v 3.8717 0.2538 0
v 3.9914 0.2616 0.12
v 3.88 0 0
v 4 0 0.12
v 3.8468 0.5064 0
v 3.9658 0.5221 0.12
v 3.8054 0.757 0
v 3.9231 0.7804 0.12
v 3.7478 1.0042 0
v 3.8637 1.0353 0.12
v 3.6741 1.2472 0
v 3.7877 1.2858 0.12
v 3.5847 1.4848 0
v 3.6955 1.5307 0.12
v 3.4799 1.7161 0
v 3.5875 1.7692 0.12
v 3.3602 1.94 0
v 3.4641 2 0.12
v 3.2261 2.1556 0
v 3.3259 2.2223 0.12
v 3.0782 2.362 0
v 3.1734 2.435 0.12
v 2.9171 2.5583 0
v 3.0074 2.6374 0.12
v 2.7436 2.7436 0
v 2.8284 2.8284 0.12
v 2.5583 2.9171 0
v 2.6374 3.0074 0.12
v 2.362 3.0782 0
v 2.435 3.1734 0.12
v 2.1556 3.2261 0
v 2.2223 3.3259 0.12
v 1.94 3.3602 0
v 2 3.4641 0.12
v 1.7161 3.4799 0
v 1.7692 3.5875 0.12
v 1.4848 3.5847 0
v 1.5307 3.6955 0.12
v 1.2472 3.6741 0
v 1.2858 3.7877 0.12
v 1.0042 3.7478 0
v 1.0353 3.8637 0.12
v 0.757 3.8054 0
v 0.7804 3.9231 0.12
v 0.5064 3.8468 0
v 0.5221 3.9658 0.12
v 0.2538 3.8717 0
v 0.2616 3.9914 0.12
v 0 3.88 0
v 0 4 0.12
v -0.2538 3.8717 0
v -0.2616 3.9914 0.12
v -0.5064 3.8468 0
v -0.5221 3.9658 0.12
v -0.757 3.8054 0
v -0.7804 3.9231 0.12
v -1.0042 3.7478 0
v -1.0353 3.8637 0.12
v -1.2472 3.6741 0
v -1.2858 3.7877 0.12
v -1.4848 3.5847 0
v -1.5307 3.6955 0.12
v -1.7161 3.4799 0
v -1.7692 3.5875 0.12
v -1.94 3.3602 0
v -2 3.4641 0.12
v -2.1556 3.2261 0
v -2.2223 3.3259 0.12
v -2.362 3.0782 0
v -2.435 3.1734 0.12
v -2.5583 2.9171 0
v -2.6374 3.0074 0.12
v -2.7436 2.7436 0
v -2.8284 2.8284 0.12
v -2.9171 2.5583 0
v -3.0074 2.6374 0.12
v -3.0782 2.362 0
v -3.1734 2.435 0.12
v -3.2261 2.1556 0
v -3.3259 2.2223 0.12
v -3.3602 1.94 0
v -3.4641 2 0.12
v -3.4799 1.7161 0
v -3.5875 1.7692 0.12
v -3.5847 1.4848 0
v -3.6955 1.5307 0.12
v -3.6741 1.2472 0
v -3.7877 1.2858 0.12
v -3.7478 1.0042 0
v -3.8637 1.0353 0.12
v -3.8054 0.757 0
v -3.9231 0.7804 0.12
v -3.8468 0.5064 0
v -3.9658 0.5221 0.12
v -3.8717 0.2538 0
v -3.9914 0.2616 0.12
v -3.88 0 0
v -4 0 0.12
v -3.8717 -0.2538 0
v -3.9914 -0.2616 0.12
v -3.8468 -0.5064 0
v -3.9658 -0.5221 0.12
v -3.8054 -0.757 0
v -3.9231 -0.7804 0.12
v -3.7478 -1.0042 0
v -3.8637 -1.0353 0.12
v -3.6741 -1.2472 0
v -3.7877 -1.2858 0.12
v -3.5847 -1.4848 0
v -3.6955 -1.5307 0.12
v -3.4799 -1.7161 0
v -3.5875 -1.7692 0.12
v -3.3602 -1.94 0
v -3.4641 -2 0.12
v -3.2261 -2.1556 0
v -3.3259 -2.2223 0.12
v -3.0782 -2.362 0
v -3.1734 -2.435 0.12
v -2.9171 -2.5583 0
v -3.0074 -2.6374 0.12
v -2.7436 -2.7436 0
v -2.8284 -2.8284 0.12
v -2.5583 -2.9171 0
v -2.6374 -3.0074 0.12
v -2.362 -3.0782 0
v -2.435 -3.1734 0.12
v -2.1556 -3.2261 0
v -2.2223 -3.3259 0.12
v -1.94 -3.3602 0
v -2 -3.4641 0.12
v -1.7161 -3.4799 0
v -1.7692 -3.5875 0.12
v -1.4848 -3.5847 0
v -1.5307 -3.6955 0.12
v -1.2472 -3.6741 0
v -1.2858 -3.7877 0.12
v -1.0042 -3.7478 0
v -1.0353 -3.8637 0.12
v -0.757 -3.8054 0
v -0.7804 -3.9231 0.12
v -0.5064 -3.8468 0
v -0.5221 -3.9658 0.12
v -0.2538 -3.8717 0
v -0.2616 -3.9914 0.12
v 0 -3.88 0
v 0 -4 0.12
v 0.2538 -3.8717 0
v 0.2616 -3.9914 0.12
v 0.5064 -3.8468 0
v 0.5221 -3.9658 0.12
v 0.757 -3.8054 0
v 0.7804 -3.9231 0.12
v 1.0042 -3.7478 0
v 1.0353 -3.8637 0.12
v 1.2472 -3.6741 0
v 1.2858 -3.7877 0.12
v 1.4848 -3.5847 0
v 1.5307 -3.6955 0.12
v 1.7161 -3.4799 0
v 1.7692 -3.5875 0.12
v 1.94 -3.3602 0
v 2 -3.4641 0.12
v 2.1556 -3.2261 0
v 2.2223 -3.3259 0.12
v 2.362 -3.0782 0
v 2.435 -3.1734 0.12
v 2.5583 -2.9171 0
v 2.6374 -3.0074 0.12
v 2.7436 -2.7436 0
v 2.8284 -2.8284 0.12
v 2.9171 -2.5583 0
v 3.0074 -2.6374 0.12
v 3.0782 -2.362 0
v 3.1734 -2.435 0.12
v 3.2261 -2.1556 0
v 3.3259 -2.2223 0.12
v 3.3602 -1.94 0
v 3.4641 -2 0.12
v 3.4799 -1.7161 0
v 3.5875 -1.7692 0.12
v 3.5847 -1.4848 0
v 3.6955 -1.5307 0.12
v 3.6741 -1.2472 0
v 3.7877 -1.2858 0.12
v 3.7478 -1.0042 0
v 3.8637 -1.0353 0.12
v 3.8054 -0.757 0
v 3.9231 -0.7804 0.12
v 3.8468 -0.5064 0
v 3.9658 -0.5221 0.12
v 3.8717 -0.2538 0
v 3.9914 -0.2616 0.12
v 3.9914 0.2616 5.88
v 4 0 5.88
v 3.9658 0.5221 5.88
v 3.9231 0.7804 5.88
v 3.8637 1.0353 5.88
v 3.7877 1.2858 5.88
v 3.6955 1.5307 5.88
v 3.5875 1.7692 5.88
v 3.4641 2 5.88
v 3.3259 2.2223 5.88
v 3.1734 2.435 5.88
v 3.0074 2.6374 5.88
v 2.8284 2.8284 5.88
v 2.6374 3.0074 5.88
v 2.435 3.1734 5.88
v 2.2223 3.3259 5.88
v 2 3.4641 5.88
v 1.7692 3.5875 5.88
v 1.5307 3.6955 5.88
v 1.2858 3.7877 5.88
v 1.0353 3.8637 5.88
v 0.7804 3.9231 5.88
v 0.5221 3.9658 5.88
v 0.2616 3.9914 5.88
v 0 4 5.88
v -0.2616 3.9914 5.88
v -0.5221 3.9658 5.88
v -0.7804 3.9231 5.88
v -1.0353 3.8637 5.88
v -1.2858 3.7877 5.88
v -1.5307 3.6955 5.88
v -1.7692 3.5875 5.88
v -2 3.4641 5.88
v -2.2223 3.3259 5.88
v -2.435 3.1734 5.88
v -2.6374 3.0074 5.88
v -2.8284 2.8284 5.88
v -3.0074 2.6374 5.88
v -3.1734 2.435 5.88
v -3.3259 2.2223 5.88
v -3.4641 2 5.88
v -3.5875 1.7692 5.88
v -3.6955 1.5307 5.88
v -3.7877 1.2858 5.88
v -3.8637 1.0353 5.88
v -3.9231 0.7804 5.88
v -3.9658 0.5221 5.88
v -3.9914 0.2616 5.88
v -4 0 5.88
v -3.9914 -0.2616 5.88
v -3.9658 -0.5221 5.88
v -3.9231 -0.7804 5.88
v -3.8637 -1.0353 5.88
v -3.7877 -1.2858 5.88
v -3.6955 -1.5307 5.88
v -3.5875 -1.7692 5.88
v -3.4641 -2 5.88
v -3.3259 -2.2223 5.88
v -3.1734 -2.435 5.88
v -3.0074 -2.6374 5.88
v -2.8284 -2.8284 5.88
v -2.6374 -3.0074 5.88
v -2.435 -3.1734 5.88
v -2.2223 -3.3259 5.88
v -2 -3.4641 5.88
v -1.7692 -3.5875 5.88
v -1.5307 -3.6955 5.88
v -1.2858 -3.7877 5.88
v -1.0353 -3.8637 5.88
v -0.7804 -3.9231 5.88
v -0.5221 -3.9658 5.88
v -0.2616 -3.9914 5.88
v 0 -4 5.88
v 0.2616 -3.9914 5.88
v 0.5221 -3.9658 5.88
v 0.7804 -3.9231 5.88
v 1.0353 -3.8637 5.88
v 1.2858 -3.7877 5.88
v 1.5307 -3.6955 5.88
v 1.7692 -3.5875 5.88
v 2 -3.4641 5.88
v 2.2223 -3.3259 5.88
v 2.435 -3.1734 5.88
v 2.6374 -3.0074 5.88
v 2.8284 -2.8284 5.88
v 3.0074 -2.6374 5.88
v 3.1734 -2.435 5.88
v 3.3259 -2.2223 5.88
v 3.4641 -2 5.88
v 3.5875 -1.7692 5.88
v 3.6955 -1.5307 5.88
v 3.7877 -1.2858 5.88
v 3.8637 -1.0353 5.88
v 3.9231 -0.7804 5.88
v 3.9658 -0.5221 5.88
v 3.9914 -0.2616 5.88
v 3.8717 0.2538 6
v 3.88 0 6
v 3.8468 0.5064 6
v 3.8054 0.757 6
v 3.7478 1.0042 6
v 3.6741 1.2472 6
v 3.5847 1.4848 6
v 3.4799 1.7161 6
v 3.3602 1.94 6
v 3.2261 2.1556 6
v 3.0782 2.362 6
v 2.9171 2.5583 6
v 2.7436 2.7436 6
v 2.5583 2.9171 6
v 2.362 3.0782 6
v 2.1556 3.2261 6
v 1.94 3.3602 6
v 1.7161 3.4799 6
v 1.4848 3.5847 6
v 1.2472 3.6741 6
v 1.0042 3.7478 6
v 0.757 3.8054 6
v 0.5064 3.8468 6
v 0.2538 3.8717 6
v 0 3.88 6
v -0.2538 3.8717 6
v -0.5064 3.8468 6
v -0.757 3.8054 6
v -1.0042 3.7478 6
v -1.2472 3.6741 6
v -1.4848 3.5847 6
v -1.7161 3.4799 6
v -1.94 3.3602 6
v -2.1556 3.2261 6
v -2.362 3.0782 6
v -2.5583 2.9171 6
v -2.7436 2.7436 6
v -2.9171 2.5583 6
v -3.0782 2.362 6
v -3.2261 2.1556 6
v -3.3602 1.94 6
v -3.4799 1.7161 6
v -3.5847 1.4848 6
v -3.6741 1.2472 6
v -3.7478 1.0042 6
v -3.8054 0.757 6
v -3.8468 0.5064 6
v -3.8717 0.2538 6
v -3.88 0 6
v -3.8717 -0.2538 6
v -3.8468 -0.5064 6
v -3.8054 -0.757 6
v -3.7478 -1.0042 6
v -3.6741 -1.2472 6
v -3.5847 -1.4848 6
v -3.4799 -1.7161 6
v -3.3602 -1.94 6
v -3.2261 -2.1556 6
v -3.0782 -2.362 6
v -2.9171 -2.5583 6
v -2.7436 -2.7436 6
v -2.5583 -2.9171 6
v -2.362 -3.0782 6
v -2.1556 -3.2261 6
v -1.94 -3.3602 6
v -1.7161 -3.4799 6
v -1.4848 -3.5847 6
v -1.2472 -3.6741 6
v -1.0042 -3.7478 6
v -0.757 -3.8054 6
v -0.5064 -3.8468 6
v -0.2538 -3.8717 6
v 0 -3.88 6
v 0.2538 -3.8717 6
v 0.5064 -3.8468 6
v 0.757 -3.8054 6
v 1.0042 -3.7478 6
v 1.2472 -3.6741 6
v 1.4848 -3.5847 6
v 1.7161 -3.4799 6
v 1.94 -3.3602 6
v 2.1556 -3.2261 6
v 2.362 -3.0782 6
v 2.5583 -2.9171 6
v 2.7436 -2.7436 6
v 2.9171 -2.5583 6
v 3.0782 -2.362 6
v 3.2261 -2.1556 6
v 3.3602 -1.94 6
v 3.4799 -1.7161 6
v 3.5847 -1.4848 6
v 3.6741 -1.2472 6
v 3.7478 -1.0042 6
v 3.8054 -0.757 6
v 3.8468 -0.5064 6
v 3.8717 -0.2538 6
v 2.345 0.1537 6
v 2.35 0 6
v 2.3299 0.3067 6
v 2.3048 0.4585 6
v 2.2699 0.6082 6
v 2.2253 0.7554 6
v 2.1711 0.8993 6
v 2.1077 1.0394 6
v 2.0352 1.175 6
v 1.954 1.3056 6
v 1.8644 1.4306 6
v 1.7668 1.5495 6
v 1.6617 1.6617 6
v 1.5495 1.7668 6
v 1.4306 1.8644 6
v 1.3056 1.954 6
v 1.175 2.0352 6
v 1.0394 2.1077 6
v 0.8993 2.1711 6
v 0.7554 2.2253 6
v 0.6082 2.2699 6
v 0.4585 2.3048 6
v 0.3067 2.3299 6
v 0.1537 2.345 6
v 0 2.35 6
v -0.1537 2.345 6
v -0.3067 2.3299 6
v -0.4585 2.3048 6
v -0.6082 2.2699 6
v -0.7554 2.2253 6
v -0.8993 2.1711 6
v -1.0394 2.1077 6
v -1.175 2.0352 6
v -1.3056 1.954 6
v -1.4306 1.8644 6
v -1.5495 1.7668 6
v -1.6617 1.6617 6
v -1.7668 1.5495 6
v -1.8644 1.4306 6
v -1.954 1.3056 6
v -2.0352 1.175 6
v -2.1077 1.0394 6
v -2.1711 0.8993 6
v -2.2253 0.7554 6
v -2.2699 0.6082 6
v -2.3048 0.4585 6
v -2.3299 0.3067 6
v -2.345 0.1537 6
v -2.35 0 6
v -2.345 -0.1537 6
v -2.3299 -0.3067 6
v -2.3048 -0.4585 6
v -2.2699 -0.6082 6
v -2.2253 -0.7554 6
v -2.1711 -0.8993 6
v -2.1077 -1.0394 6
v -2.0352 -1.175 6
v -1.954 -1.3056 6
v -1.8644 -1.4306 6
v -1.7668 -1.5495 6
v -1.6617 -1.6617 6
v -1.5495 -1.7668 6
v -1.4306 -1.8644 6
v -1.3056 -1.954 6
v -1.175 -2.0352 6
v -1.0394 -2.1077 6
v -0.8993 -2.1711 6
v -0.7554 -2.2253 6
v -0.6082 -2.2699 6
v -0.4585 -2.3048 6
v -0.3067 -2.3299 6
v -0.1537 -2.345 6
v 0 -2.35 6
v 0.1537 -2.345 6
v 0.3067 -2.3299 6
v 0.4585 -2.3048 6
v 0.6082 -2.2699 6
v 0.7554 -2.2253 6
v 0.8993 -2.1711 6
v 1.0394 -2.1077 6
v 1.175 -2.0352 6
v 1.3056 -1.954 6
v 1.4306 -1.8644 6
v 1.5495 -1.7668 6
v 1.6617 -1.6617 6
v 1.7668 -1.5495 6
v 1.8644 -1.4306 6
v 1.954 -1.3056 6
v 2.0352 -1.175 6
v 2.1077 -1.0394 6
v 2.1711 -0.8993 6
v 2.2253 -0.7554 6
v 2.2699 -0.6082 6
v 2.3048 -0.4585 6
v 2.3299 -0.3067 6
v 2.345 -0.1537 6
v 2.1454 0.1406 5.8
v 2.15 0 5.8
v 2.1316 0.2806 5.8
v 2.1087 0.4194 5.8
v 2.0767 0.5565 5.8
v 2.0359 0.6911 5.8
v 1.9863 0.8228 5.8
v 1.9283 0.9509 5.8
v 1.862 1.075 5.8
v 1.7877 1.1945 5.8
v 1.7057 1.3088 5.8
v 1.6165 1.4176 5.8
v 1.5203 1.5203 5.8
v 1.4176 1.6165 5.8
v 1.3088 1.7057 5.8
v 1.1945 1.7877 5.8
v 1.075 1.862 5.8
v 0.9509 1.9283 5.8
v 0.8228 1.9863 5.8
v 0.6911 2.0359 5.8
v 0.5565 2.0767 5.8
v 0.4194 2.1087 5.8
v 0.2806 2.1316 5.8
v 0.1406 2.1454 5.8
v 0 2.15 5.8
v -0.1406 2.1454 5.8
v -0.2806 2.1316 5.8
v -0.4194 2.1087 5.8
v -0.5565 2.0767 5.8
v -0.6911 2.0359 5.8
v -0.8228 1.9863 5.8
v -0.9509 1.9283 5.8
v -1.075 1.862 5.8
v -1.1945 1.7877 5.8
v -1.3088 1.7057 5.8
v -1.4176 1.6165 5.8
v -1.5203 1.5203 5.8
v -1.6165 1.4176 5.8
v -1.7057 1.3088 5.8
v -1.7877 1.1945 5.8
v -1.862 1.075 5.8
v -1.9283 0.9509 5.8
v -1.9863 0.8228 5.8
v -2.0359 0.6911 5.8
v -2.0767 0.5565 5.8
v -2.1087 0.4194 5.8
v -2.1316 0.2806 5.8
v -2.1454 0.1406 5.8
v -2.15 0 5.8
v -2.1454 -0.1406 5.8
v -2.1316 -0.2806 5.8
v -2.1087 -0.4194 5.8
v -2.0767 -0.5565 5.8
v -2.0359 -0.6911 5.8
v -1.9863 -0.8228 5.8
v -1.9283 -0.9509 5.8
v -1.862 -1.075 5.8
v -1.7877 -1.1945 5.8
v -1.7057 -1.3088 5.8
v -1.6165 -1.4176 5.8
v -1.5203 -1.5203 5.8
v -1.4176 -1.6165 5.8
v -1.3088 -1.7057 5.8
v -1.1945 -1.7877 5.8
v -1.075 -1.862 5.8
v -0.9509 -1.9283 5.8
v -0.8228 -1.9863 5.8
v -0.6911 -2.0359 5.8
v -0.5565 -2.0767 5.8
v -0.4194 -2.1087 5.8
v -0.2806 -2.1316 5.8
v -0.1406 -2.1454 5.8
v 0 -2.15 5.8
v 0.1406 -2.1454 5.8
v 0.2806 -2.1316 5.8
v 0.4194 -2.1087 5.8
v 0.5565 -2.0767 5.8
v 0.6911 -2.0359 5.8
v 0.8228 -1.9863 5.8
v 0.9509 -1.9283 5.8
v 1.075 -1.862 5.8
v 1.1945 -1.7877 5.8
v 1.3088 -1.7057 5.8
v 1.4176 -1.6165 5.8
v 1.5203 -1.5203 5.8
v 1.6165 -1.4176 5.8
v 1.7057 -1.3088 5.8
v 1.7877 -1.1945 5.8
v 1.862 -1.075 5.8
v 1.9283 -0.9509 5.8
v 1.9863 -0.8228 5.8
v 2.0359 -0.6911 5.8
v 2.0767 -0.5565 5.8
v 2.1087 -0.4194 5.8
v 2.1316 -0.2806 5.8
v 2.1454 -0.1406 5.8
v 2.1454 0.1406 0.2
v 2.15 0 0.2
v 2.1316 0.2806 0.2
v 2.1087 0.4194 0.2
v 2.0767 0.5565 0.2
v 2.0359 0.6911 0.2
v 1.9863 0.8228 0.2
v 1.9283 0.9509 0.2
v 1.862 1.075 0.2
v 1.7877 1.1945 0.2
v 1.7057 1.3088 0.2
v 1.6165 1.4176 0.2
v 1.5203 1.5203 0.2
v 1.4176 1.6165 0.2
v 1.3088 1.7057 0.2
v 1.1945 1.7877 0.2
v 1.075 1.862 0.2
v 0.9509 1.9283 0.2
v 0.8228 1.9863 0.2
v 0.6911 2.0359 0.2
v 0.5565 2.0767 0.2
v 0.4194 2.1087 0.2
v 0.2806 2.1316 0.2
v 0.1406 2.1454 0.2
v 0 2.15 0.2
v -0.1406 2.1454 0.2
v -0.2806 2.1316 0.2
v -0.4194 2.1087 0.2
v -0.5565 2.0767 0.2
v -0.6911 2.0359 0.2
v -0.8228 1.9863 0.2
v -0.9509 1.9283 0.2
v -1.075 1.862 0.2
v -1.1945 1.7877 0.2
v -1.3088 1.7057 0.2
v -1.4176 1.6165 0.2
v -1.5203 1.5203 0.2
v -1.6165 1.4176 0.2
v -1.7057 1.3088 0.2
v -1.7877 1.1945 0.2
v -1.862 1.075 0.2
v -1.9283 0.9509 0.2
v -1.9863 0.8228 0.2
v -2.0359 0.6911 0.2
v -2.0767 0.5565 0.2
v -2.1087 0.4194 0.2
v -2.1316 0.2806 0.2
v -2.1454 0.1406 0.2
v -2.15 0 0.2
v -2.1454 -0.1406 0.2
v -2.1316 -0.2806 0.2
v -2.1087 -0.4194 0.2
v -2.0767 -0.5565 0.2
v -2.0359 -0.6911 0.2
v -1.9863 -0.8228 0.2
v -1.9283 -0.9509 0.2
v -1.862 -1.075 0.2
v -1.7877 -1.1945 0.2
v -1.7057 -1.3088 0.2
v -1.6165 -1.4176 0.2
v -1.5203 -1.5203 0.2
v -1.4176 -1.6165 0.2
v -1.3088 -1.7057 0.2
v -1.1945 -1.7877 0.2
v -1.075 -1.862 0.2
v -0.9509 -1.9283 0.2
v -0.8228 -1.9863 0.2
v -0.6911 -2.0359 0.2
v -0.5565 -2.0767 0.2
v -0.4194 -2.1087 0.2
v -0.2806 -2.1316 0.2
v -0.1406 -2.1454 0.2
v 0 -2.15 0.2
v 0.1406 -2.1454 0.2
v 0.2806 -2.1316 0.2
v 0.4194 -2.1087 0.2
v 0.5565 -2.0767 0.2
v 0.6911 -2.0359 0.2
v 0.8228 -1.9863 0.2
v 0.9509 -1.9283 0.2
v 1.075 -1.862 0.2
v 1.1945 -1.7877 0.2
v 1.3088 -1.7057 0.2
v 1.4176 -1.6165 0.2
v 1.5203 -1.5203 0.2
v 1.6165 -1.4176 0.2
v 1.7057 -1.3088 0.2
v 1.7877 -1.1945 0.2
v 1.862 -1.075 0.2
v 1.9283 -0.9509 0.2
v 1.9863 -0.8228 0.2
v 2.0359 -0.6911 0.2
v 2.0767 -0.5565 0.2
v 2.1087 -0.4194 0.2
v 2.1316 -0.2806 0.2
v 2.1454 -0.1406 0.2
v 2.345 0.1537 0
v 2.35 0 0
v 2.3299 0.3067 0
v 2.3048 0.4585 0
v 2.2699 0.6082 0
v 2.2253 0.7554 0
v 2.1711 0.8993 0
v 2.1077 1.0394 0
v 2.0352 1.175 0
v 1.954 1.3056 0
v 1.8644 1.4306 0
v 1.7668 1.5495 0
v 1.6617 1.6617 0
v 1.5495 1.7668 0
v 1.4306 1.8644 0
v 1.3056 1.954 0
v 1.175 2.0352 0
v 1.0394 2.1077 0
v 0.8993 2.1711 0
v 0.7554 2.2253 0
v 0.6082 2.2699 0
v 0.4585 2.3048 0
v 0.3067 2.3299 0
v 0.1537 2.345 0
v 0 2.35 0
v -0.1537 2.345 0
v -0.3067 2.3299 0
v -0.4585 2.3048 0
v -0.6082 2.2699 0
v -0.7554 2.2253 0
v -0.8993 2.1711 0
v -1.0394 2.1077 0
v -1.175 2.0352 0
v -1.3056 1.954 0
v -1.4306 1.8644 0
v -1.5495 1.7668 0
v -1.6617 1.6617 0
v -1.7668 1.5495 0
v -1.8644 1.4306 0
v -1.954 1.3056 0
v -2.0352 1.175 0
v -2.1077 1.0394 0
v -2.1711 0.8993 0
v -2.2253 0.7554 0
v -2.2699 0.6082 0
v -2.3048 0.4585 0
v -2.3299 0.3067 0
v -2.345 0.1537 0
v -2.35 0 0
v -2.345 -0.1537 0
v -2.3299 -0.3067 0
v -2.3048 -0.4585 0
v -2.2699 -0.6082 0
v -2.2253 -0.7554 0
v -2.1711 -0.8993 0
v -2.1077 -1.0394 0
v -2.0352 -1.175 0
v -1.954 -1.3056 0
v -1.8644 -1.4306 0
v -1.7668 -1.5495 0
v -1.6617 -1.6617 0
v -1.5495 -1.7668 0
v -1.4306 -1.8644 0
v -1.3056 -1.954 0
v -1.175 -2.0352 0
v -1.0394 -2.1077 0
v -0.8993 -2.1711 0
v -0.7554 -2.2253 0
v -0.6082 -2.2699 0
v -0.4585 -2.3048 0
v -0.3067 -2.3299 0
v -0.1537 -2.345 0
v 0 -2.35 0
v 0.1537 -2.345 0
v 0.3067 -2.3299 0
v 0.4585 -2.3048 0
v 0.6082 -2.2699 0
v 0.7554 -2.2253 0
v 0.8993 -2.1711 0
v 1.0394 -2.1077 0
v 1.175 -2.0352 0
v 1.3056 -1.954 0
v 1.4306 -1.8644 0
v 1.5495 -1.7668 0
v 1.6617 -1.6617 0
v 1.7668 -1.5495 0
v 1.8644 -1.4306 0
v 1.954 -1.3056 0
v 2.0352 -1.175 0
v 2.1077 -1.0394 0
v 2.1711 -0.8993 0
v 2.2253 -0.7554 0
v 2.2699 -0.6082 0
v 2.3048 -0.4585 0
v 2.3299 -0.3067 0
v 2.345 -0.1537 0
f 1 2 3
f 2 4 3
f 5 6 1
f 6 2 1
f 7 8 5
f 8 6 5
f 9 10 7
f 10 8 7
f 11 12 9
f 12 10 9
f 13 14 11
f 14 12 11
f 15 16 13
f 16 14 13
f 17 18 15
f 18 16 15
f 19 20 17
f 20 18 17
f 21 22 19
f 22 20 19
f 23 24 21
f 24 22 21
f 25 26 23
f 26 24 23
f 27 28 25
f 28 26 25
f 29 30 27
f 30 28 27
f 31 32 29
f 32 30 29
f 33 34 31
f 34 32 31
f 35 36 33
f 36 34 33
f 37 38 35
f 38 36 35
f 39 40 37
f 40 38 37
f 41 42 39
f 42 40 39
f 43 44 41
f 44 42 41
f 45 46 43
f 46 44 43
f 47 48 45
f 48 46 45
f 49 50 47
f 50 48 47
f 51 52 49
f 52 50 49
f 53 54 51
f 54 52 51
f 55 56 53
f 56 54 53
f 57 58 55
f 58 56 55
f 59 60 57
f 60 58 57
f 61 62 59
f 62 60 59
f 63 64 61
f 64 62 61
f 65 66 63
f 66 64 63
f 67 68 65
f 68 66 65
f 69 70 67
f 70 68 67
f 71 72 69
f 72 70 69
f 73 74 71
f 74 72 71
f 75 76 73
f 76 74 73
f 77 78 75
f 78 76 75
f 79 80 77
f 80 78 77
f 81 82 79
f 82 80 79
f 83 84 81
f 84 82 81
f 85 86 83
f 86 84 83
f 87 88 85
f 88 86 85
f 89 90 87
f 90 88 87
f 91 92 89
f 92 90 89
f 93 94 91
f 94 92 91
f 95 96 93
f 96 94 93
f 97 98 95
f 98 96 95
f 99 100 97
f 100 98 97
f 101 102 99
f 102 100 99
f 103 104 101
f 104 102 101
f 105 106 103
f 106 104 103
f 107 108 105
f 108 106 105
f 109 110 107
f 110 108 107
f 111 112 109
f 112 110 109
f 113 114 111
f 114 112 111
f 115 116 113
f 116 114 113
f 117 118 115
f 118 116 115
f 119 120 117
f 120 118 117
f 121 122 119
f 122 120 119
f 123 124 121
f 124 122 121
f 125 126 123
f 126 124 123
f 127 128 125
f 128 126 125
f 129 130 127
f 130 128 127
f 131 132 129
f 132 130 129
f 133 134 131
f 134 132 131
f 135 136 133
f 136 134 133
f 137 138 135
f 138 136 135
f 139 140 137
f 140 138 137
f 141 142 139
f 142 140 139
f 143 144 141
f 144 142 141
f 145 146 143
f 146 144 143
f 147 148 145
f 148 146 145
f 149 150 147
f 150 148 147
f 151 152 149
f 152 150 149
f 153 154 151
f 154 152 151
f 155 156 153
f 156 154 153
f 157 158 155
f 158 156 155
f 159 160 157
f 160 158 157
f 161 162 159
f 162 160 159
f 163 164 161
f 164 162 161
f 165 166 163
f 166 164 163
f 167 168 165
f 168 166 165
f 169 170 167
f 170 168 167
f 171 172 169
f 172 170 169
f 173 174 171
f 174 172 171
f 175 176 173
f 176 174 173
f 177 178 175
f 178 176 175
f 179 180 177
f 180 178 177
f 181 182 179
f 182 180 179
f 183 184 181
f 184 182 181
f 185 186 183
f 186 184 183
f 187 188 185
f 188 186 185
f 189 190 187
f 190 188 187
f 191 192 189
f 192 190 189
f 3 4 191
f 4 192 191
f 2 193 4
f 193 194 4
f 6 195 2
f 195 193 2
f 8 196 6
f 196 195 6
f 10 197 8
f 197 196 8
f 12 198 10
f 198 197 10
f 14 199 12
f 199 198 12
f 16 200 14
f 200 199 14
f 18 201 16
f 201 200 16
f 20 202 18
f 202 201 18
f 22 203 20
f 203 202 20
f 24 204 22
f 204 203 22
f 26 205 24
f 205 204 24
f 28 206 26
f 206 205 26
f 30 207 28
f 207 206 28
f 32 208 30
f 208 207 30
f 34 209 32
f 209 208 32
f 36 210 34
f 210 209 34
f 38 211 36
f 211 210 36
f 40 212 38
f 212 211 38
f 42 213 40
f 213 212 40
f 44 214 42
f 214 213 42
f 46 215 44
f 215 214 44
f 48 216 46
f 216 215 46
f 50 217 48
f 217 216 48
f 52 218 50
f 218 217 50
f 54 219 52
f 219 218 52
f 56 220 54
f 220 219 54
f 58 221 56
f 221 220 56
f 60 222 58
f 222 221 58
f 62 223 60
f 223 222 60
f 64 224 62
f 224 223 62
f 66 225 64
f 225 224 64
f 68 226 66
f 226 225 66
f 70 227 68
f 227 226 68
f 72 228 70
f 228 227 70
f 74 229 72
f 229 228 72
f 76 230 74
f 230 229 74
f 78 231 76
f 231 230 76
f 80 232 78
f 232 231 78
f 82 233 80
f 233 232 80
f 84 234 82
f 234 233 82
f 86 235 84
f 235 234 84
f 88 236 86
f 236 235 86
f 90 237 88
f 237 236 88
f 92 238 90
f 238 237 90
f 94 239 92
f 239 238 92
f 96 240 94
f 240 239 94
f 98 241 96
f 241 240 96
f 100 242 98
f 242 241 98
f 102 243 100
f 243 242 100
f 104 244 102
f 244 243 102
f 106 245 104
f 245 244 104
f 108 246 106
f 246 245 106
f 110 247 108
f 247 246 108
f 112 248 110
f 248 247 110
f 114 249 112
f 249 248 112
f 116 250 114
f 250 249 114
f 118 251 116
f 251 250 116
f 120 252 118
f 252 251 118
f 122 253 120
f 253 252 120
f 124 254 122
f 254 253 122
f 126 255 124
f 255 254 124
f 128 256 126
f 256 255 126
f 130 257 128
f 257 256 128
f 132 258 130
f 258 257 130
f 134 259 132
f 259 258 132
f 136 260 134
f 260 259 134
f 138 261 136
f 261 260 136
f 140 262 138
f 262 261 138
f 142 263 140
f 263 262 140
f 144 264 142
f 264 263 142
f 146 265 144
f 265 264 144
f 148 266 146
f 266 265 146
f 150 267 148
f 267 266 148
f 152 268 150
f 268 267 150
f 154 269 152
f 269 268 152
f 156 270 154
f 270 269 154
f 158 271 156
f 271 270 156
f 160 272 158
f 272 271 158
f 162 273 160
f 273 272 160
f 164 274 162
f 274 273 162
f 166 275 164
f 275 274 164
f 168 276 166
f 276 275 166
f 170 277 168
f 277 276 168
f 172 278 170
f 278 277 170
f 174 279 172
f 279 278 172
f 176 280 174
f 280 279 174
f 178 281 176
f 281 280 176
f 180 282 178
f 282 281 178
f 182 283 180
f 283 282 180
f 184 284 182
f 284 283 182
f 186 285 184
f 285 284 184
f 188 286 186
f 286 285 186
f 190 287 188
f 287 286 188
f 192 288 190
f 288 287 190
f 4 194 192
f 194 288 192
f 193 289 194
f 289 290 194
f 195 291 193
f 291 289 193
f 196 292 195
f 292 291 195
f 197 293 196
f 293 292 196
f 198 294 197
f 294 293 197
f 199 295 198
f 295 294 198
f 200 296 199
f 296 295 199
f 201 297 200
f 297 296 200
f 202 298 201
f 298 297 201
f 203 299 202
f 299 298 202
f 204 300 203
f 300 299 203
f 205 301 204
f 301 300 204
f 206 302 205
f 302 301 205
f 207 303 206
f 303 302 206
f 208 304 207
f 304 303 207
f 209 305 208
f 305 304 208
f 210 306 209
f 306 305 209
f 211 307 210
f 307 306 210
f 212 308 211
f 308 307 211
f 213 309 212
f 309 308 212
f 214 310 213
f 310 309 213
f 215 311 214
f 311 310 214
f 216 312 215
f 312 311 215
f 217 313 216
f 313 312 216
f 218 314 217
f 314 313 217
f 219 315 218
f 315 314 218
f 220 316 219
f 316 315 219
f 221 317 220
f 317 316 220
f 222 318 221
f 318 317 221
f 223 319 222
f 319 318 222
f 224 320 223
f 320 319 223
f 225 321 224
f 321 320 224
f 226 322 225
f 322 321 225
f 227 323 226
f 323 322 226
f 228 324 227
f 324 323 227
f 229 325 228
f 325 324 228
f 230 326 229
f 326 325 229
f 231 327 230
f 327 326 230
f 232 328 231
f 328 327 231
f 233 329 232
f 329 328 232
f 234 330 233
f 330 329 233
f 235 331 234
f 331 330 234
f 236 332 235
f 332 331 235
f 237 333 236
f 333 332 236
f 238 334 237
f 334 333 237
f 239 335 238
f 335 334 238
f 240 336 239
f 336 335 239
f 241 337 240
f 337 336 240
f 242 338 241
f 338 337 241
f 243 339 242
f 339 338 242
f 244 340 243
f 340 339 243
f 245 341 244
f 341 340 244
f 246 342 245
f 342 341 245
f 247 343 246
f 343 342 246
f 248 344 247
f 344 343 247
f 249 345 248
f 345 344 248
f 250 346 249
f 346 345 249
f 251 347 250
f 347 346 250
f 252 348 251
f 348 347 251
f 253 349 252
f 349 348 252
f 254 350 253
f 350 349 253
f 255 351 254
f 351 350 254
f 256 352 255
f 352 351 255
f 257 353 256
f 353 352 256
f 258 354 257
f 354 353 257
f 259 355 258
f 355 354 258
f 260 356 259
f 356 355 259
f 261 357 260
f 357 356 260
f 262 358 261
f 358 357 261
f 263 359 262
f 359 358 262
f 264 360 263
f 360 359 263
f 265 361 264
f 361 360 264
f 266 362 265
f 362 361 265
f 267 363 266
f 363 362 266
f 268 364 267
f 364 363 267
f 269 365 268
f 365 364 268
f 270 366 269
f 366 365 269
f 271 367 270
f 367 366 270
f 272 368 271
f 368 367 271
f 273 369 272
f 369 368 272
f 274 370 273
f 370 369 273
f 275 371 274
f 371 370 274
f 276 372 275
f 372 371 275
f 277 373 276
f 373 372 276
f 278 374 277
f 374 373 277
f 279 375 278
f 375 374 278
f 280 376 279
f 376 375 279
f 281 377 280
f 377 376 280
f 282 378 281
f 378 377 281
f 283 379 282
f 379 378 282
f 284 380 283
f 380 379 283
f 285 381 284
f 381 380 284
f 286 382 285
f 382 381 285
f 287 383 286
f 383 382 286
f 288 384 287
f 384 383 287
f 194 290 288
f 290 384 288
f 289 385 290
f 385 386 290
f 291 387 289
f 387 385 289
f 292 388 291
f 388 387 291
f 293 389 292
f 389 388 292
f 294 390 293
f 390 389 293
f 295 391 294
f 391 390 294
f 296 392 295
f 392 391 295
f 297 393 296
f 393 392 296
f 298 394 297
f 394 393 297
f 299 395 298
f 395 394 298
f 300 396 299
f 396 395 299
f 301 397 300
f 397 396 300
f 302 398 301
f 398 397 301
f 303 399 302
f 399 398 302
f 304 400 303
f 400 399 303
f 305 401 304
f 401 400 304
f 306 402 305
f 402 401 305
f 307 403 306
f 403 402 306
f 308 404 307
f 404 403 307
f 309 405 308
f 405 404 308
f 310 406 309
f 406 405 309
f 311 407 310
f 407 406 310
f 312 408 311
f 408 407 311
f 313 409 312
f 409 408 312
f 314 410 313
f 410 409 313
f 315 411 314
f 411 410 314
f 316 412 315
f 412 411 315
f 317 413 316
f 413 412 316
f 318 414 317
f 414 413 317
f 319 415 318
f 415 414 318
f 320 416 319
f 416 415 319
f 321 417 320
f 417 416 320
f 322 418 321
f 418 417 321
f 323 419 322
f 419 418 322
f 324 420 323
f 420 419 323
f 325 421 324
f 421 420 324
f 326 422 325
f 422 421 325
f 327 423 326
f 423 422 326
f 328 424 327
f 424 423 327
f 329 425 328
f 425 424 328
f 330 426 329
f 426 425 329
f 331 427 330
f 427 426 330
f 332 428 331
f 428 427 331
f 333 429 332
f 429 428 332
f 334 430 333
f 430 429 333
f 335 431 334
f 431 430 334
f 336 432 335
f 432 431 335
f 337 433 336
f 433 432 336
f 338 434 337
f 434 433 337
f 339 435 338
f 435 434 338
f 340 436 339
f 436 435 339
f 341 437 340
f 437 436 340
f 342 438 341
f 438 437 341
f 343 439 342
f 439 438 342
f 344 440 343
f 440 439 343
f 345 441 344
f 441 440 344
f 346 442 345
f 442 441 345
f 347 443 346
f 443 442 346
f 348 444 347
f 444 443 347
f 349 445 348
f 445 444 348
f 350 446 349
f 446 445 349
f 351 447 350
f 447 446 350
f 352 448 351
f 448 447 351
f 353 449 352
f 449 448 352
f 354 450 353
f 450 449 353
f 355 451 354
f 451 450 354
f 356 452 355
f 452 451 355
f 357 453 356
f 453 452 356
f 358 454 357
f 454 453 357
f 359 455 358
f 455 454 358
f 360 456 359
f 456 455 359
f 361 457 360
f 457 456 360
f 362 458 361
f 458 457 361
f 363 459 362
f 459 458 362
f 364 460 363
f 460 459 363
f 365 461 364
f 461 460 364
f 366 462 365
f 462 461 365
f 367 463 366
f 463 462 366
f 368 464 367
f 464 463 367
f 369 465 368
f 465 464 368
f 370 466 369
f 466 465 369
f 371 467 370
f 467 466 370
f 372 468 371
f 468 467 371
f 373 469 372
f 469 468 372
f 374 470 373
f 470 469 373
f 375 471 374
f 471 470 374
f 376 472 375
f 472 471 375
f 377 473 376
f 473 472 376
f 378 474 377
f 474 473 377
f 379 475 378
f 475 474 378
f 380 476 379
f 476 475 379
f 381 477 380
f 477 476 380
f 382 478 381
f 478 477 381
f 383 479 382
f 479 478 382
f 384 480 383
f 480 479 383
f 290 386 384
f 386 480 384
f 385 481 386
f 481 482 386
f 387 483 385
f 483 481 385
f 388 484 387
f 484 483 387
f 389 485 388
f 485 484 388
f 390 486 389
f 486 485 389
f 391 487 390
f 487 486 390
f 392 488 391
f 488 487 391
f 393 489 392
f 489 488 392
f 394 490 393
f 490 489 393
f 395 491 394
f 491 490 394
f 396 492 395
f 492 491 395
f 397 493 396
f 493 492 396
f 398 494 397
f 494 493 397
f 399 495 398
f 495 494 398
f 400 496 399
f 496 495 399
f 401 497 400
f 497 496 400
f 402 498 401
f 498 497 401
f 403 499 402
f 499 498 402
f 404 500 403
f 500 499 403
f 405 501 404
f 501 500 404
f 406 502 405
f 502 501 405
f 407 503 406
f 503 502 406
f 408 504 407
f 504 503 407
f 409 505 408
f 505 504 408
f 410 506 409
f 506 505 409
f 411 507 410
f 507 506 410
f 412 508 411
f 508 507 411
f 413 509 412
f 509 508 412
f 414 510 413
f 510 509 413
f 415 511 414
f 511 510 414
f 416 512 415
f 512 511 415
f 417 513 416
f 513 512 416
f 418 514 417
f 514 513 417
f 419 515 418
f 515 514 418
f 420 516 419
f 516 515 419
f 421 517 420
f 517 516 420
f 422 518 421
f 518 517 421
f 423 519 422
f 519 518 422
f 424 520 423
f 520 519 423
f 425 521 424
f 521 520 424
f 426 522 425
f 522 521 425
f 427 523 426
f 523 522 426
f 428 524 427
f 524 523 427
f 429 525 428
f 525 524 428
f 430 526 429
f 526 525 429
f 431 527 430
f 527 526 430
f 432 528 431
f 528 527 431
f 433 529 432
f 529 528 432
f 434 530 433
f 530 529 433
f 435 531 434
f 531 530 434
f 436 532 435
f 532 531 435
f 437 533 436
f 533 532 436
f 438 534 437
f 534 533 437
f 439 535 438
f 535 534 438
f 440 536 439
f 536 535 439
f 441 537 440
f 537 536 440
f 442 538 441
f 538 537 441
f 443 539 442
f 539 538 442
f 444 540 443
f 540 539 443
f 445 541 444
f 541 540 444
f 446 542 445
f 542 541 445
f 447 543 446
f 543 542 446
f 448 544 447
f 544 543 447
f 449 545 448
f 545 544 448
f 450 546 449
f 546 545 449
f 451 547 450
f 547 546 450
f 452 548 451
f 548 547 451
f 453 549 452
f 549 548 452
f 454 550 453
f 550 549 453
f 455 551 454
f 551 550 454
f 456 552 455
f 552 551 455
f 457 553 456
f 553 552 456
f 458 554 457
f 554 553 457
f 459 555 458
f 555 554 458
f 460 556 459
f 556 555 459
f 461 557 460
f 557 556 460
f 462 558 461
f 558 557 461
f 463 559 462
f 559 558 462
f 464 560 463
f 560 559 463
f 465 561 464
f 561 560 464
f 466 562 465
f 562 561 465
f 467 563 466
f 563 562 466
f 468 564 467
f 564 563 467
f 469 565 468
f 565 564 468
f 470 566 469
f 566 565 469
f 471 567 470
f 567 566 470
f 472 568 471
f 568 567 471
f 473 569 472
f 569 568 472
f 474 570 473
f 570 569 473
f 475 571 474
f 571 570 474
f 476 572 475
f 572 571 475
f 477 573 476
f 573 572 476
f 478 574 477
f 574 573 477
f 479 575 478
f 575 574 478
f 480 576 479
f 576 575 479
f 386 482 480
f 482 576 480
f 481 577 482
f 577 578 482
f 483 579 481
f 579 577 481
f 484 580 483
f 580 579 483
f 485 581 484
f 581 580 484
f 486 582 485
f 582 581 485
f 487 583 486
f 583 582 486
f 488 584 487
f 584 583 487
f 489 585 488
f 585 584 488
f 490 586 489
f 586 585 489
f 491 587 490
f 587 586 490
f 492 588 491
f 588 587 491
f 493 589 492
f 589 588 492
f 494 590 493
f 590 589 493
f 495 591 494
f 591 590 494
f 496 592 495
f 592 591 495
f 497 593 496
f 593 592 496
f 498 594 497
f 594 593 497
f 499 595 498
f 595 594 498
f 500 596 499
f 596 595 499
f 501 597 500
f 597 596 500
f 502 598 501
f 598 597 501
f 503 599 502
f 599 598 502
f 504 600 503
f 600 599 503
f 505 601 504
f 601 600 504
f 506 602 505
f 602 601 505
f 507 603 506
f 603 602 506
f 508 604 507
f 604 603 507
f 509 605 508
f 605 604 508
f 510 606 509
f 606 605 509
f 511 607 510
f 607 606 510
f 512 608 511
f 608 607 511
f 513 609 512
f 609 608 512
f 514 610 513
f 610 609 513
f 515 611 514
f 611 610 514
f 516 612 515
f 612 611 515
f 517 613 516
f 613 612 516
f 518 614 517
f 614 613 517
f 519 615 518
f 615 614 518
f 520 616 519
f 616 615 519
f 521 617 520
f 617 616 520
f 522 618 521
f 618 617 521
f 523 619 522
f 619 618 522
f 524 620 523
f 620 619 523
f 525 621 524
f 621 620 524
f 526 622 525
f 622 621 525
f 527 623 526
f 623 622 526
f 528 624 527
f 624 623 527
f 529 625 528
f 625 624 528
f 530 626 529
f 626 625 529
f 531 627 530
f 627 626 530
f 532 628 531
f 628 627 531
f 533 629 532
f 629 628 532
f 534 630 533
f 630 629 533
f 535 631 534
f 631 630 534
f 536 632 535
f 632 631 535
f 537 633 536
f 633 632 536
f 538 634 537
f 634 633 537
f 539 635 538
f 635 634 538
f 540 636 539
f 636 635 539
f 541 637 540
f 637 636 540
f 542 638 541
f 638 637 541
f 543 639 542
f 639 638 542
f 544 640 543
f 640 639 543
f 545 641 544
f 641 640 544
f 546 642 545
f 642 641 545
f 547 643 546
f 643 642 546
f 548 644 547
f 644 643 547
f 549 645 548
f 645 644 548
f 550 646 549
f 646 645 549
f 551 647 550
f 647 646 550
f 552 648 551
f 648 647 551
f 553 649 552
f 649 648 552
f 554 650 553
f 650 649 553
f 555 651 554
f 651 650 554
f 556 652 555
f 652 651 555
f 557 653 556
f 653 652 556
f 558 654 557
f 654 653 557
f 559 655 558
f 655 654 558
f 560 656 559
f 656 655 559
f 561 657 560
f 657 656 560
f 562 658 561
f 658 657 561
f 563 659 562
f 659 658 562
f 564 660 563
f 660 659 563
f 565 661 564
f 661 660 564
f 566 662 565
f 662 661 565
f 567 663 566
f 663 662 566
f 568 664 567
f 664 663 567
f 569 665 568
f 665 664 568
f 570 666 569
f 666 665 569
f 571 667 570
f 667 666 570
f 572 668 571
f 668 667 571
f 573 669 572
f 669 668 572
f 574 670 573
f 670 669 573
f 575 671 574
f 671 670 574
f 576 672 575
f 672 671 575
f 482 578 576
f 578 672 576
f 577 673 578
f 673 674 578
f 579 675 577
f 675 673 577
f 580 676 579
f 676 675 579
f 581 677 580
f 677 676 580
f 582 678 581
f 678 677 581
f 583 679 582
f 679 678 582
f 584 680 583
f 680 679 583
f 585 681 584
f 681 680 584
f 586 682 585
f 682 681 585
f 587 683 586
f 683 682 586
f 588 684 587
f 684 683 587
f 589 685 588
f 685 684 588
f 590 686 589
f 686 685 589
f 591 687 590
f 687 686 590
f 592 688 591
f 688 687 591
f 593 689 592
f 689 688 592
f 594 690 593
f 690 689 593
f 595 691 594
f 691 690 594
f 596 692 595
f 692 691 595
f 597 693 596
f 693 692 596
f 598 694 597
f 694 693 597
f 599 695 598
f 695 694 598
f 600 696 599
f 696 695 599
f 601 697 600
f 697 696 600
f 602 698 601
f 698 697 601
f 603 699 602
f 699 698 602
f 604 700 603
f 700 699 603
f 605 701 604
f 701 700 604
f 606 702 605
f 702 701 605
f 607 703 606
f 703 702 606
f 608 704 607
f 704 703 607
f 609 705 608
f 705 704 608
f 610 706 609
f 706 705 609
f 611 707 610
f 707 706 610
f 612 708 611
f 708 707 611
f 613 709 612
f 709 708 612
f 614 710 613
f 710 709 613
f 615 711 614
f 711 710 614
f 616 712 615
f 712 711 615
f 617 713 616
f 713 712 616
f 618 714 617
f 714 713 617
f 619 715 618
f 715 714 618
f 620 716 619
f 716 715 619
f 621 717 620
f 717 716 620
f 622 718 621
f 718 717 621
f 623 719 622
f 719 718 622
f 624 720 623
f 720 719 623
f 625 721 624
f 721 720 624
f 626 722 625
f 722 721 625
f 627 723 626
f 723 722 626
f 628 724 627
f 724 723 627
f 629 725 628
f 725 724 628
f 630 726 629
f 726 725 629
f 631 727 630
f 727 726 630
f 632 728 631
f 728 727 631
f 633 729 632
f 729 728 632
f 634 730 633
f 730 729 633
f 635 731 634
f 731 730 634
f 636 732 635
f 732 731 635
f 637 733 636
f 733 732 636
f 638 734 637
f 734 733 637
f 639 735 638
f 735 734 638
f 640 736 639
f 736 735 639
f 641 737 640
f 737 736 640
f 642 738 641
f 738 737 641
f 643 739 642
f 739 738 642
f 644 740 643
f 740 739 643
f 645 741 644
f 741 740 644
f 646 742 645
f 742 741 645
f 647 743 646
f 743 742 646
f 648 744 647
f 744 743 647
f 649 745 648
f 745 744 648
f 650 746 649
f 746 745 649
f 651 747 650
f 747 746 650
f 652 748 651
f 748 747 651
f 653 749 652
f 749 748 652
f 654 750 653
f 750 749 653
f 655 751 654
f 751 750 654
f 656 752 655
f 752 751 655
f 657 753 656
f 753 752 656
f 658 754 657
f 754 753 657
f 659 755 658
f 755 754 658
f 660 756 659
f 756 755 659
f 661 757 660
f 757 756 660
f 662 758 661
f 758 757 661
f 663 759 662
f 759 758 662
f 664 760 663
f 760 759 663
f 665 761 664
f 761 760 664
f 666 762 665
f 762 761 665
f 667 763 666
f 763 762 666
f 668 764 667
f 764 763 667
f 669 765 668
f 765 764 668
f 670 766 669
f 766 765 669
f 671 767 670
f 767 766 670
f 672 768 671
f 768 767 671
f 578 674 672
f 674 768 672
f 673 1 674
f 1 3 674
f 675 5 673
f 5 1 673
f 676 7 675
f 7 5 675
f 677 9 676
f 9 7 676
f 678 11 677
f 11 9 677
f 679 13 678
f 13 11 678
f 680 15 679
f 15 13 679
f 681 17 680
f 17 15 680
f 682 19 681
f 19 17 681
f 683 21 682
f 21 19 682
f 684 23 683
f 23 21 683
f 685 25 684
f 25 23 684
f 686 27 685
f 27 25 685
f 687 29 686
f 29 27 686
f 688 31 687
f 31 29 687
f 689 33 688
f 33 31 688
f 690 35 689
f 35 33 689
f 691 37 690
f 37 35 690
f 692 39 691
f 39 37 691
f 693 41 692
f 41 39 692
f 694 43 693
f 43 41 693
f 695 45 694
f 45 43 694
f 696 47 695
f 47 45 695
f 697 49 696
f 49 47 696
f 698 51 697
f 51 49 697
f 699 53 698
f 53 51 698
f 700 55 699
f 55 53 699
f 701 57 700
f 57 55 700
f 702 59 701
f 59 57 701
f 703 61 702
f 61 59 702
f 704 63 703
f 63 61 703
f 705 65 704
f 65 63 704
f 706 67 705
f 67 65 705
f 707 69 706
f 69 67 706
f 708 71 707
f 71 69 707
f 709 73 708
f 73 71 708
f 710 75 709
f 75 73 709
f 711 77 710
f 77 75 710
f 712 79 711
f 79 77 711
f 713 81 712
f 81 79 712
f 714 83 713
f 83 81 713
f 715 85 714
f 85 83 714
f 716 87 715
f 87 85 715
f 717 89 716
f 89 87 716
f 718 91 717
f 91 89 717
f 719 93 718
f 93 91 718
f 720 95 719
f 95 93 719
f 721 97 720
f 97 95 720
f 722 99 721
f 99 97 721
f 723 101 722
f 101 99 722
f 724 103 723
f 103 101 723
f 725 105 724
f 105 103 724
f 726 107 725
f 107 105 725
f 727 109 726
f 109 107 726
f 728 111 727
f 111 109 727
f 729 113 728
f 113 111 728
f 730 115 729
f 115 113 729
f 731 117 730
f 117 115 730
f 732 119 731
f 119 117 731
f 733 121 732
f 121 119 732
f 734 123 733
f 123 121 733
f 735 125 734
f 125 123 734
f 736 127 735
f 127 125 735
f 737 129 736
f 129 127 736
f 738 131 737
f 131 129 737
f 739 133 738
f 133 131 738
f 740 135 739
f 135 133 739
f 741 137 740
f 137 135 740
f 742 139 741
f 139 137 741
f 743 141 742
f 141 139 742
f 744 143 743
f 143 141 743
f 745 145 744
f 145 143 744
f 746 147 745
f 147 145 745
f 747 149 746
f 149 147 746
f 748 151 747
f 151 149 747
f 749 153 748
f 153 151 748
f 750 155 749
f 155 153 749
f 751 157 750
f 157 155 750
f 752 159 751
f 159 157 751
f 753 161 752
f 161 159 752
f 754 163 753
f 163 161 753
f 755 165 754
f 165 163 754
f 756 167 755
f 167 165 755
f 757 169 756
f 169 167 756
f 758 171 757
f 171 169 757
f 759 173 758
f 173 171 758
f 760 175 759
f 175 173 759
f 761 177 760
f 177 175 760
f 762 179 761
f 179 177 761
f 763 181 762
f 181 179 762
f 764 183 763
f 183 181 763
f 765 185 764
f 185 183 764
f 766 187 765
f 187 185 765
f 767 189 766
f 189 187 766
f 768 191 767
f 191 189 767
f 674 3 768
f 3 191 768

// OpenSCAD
// OOMP generic catalogue model; units: mm.
// Stud length is additional to body depth. Tapping depths are model assumptions.
variant = "full"; // [full, display]
family = "spacer";
connection_type = "plain";
depth_mm = 6;
stud_length_mm = 0;
tapped_depth_mm = 0;
bore_mm = 4.3;
outer_diameter_mm = 8;
across_flats_mm = 6;
thread_nominal_diameter_mm = 3;
thread_pitch_mm = 0.5;
edge_chamfer_mm = 0.12;
mouth_chamfer_mm = 0.2;
angular_segments = 96;
samples_per_pitch = 16;

// Boundary travels up the outside, then down any tapped/plain bore.
// Equal-height rings at shoulders form the annular shoulder faces.
n = angular_segments;
threaded = family == "standoff";
has_stud = connection_type == "stud_to_tapped" || connection_type == "stud_to_stud";
two_studs = connection_type == "stud_to_stud";
through = !threaded || connection_type == "tapped_to_tapped";
pitch = thread_pitch_mm;
diameter = threaded ? thread_nominal_diameter_mm : bore_mm;
minor = diameter - 5*sqrt(3)*pitch/8;
transition = mouth_chamfer_mm + (threaded ? 5*sqrt(3)*pitch/16 : 0);
tip_chamfer = mouth_chamfer_mm + 17*sqrt(3)*pitch/48;
function sorted(v) = len(v)<=1 ? v : let(p=v[0])
    concat(sorted([for(x=v) if(x<p-1e-8) x]), [p], sorted([for(x=v) if(x>p+1e-8) x]));
function reverse(v) = [for(i=[len(v)-1:-1:0]) v[i]];
function theta(i) = i*360/n;
function fract(x) = x-floor(x);
function phase_distance(i,z) = abs(fract(z/pitch-theta(i)/360+0.5)-0.5);
function thread_r(i,z) = minor/2 + min(5*sqrt(3)*pitch/16,
    max(0,(phase_distance(i,z)-0.125)*pitch*sqrt(3)));
function stud_r(i,z,tip) = min(diameter/2 - (variant=="full" ?
    min(17*sqrt(3)*pitch/48,max(0,(phase_distance(i,z)-0.0625)*pitch*sqrt(3))) : 0),
    diameter/2-tip_chamfer+abs(z-tip));
function body_r(i,z) = (threaded ? across_flats_mm/2/cos(theta(i)%60-30) : outer_diameter_mm/2)
    - max(0,edge_chamfer_mm-min(z,depth_mm-z));
function bore_r(i,z) = max(threaded ? (variant=="full" ? thread_r(i,z) : minor/2) : diameter/2,
    diameter/2+mouth_chamfer_mm-(through ? min(z,depth_mm-z) : depth_mm-z));
function stud_z(a,b,tip) = let(count=variant=="full" ? ceil(stud_length_mm/pitch*samples_per_pitch) : 1)
    sorted(concat([for(i=[0:count]) a+(b-a)*i/count], [tip==a ? tip+tip_chamfer : tip-tip_chamfer]));
body_z = sorted([0,edge_chamfer_mm,depth_mm-edge_chamfer_mm,depth_mm]);
low = through ? 0 : depth_mm-tapped_depth_mm;
count = threaded && variant=="full" ? ceil((depth_mm-low)/pitch*samples_per_pitch) : 1;
bore_z = two_studs ? [] : reverse(sorted(concat(
    [for(i=[0:count]) low+(depth_mm-low)*i/count],
    [depth_mm-mouth_chamfer_mm,depth_mm-transition],
    through ? [mouth_chamfer_mm,transition] : [])));
// Ring descriptors: [height, kind, tip]. Kind: 0 body, 1 stud, 2 bore.
rings = concat(
    has_stud ? [for(z=stud_z(-stud_length_mm,0,-stud_length_mm)) [z,1,-stud_length_mm]] : [],
    [for(z=body_z) [z,0,0]],
    two_studs ? [for(z=stud_z(depth_mm,depth_mm+stud_length_mm,depth_mm+stud_length_mm)) [z,1,depth_mm+stud_length_mm]] : [],
    [for(z=bore_z) [z,2,0]]);
function radius(i,ring) = ring[1]==0 ? body_r(i,ring[0]) :
    ring[1]==1 ? stud_r(i,ring[0],ring[2]) : bore_r(i,ring[0]);
points = concat([for(ring=rings) for(i=[0:n-1])
    [radius(i,ring)*cos(theta(i)),radius(i,ring)*sin(theta(i)),ring[0]]],
    through ? [] : [[0,0,rings[0][0]],[0,0,rings[len(rings)-1][0]]]);
center = len(rings)*n;
last = (len(rings)-1)*n;
// OpenSCAD winding is opposite to STL winding.
faces = concat(
    [for(j=[0:len(rings)-(through ? 1 : 2)]) for(i=[0:n-1]) each
        let(a=j*n+i,b=j*n+(i+1)%n,c=((j+1)%len(rings))*n+(i+1)%n,d=((j+1)%len(rings))*n+i)
        [[a,c,b],[a,d,c]]],
    through ? [] : [for(i=[0:n-1]) each let(k=(i+1)%n)
        [[center,i,k],[center+1,last+k,last+i]]]);
assert(family=="spacer" || family=="standoff");
assert(!threaded || connection_type=="tapped_to_tapped" || has_stud);
assert(depth_mm>0 && diameter>0 && pitch>0);
assert(variant=="full" || variant=="display");
assert(n>=24 && n%12==0 && samples_per_pitch>=8);
assert(mouth_chamfer_mm>0 && mouth_chamfer_mm<depth_mm/2);
assert(edge_chamfer_mm>=0 && edge_chamfer_mm<depth_mm/2);
assert(diameter+4*max(mouth_chamfer_mm,edge_chamfer_mm) < (threaded ? across_flats_mm : outer_diameter_mm));
assert(!has_stud || stud_length_mm>2*mouth_chamfer_mm);
assert(!through || !threaded || 2*transition<depth_mm);
assert(connection_type!="stud_to_tapped" || (tapped_depth_mm>transition && tapped_depth_mm<depth_mm));
color([0.86,0.85,0.81]) polyhedron(points=points,faces=faces,convexity=20);
